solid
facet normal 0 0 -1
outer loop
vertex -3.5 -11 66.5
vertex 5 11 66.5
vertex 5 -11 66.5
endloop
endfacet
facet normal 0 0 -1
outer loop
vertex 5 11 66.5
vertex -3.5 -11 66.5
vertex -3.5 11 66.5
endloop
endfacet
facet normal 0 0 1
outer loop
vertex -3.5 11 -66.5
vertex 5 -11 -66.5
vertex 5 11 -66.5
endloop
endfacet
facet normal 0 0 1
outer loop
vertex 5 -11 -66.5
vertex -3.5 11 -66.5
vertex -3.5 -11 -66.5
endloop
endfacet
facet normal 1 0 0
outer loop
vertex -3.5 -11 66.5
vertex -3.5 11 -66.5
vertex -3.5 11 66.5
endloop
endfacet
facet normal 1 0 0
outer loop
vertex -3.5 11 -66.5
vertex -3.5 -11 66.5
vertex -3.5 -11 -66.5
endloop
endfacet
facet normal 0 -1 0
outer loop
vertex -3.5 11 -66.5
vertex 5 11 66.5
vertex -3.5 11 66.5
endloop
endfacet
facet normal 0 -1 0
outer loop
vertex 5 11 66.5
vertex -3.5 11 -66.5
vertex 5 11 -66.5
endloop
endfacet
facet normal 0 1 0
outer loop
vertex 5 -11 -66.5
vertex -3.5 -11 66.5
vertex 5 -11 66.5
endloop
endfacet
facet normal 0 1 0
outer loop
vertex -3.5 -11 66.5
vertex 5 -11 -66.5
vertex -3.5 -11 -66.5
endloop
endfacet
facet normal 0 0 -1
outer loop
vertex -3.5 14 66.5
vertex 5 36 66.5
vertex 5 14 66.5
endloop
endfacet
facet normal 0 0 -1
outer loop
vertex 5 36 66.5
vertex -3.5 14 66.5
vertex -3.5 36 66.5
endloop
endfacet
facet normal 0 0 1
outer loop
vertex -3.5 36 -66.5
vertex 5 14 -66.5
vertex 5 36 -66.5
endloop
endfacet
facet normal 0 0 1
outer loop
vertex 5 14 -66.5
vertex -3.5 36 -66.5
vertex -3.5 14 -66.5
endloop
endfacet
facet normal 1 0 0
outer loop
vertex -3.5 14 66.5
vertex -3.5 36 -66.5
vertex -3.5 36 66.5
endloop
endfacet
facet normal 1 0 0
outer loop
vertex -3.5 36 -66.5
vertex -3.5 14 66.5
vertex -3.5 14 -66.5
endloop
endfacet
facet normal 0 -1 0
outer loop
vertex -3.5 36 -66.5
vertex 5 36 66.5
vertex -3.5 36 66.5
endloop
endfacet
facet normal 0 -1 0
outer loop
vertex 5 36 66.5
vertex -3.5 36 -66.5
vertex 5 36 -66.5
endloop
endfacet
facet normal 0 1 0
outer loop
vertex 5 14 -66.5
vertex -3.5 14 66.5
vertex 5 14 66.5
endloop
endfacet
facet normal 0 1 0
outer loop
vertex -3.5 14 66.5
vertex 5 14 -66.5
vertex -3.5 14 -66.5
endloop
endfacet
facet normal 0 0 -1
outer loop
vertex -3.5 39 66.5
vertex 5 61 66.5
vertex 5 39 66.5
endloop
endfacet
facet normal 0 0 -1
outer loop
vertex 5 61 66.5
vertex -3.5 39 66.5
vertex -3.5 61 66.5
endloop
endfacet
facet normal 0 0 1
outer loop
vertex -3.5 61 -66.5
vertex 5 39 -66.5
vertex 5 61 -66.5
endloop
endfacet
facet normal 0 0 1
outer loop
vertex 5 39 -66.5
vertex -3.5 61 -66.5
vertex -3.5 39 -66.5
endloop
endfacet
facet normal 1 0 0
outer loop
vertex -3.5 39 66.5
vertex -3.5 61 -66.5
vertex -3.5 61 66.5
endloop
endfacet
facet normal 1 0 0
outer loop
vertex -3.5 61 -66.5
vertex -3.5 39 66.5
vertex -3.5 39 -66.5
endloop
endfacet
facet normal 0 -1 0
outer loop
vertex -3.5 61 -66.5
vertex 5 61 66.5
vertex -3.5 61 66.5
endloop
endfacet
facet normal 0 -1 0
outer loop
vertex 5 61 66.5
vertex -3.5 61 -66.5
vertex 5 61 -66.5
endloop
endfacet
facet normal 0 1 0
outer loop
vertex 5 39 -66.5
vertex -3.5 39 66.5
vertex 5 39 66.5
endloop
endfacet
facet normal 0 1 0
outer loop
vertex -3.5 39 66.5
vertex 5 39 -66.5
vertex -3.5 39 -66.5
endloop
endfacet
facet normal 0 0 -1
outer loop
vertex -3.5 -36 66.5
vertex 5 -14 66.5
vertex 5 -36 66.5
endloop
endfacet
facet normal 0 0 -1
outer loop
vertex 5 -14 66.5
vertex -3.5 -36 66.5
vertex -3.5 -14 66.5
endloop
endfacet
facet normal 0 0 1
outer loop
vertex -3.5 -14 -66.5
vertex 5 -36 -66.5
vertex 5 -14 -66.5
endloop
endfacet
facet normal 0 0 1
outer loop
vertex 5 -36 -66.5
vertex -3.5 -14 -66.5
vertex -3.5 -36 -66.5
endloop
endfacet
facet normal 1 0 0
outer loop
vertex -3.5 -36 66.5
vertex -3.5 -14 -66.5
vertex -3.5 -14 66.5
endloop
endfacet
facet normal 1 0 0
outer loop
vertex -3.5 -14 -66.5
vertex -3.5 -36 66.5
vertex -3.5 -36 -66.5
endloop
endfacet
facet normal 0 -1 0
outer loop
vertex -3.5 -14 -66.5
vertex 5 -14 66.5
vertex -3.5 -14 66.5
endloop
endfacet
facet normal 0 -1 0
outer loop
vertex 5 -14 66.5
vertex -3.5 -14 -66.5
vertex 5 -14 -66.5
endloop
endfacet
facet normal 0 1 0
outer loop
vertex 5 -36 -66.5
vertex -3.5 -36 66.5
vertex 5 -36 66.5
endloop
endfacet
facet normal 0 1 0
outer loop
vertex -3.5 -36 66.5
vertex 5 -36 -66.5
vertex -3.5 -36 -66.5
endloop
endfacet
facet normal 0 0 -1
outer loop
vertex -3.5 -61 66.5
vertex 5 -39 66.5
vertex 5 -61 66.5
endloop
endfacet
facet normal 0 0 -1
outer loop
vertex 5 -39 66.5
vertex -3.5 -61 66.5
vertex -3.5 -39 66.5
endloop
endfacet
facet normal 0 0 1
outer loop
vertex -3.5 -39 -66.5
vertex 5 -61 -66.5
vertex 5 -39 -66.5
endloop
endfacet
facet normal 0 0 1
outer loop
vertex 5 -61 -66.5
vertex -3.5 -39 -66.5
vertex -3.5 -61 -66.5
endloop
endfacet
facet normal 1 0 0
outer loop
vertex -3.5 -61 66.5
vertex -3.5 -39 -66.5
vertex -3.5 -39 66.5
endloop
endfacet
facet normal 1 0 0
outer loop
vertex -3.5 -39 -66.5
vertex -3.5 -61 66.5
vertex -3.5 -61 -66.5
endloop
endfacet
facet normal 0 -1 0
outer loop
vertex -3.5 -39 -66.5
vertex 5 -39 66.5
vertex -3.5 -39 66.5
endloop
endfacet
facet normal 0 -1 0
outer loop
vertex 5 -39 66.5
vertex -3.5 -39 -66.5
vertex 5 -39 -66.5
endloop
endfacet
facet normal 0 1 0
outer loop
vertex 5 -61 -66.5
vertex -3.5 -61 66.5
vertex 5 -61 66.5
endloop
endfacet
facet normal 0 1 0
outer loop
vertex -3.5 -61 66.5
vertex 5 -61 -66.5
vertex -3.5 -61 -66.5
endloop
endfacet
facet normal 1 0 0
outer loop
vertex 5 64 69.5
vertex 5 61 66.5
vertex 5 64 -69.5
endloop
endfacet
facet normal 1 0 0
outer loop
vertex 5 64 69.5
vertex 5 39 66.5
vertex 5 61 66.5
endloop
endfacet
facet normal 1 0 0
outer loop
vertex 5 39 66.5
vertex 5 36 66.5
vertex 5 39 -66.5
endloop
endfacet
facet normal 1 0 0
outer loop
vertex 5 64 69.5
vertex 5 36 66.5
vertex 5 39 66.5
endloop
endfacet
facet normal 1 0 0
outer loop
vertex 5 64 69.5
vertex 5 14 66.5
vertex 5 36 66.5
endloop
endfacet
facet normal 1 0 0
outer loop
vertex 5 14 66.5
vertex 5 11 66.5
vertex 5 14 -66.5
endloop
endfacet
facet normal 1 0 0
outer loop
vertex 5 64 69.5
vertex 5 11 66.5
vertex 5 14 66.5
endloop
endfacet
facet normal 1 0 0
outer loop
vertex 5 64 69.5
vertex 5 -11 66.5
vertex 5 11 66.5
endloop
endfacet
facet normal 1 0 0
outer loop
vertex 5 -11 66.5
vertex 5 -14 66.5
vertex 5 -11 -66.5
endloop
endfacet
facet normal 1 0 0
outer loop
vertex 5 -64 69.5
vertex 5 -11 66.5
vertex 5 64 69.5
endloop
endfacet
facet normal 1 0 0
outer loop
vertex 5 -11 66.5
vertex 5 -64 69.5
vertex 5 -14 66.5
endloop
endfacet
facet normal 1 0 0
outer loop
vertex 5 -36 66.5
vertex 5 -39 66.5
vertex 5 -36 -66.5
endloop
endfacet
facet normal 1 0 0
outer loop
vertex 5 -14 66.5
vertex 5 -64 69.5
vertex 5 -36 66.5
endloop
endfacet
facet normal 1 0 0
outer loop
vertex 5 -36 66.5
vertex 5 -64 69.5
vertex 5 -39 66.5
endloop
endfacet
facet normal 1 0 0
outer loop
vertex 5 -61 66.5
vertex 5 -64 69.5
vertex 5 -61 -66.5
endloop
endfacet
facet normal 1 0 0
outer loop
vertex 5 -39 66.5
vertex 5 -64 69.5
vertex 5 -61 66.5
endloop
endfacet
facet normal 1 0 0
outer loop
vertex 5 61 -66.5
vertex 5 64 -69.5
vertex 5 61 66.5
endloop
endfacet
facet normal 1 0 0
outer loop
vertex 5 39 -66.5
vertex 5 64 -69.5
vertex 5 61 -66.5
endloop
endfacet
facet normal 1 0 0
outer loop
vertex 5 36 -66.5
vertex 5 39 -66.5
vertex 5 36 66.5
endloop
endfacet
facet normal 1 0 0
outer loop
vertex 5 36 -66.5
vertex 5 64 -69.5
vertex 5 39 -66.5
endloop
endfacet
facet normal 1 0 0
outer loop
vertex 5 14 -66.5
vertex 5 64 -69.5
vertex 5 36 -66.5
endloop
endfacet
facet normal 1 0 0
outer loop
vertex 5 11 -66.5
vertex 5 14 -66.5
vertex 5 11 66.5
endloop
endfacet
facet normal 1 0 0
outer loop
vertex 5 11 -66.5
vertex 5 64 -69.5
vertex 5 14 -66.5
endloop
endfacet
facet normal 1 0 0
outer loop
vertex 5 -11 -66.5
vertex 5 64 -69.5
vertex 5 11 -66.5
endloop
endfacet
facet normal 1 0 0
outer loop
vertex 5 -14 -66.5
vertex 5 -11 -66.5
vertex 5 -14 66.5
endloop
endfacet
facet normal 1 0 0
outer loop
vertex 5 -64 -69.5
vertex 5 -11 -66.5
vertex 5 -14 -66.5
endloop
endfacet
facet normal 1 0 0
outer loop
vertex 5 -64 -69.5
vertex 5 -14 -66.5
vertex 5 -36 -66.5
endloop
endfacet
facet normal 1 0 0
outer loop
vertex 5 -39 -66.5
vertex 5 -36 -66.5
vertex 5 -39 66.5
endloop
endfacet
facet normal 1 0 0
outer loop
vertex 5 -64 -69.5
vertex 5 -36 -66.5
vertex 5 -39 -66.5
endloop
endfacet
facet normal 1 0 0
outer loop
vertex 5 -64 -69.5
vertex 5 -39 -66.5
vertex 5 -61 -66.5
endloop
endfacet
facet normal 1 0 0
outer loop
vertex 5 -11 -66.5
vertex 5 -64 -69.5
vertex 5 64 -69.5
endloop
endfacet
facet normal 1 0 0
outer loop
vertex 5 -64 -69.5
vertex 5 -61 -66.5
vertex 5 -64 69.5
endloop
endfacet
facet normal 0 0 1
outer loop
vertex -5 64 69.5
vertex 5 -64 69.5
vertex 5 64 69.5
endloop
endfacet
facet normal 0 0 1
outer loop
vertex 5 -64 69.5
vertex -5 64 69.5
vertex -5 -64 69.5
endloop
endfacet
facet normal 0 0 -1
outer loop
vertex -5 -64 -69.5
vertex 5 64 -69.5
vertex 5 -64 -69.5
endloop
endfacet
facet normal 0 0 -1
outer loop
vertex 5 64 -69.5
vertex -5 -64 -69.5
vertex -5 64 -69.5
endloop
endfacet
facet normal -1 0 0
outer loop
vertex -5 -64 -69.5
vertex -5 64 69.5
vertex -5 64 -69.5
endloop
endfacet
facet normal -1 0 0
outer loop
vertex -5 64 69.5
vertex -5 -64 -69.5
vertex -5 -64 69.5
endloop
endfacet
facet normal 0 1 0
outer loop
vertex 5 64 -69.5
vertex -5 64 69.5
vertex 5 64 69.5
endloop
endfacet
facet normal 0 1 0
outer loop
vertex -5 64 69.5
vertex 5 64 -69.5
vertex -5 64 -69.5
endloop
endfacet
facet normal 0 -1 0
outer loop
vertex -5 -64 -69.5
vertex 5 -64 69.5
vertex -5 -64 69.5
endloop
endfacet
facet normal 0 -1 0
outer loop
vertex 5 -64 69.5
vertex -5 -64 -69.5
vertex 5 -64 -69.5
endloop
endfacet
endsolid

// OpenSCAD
base();

//translate([35, 0, 0]) boulderpack25v();
//translate([-35, 0, 0]) boulderpack25v();


module boulderpack () { 
  cube([63, 22, 133], center = true); 
}

module boulderpack25v() {
  boulderpack();
  translate([0, 25, 0]) boulderpack();
  translate([0, 50, 0]) boulderpack();
  translate([0, -25, 0]) boulderpack();
  translate([0, -50, 0]) boulderpack();    
}

module base() {
  difference() {
    translate([[0, 0, 0]]) cube([10, 128, 139], center = true);
    translate([28, 0, 0]) boulderpack25v();
  }
}
